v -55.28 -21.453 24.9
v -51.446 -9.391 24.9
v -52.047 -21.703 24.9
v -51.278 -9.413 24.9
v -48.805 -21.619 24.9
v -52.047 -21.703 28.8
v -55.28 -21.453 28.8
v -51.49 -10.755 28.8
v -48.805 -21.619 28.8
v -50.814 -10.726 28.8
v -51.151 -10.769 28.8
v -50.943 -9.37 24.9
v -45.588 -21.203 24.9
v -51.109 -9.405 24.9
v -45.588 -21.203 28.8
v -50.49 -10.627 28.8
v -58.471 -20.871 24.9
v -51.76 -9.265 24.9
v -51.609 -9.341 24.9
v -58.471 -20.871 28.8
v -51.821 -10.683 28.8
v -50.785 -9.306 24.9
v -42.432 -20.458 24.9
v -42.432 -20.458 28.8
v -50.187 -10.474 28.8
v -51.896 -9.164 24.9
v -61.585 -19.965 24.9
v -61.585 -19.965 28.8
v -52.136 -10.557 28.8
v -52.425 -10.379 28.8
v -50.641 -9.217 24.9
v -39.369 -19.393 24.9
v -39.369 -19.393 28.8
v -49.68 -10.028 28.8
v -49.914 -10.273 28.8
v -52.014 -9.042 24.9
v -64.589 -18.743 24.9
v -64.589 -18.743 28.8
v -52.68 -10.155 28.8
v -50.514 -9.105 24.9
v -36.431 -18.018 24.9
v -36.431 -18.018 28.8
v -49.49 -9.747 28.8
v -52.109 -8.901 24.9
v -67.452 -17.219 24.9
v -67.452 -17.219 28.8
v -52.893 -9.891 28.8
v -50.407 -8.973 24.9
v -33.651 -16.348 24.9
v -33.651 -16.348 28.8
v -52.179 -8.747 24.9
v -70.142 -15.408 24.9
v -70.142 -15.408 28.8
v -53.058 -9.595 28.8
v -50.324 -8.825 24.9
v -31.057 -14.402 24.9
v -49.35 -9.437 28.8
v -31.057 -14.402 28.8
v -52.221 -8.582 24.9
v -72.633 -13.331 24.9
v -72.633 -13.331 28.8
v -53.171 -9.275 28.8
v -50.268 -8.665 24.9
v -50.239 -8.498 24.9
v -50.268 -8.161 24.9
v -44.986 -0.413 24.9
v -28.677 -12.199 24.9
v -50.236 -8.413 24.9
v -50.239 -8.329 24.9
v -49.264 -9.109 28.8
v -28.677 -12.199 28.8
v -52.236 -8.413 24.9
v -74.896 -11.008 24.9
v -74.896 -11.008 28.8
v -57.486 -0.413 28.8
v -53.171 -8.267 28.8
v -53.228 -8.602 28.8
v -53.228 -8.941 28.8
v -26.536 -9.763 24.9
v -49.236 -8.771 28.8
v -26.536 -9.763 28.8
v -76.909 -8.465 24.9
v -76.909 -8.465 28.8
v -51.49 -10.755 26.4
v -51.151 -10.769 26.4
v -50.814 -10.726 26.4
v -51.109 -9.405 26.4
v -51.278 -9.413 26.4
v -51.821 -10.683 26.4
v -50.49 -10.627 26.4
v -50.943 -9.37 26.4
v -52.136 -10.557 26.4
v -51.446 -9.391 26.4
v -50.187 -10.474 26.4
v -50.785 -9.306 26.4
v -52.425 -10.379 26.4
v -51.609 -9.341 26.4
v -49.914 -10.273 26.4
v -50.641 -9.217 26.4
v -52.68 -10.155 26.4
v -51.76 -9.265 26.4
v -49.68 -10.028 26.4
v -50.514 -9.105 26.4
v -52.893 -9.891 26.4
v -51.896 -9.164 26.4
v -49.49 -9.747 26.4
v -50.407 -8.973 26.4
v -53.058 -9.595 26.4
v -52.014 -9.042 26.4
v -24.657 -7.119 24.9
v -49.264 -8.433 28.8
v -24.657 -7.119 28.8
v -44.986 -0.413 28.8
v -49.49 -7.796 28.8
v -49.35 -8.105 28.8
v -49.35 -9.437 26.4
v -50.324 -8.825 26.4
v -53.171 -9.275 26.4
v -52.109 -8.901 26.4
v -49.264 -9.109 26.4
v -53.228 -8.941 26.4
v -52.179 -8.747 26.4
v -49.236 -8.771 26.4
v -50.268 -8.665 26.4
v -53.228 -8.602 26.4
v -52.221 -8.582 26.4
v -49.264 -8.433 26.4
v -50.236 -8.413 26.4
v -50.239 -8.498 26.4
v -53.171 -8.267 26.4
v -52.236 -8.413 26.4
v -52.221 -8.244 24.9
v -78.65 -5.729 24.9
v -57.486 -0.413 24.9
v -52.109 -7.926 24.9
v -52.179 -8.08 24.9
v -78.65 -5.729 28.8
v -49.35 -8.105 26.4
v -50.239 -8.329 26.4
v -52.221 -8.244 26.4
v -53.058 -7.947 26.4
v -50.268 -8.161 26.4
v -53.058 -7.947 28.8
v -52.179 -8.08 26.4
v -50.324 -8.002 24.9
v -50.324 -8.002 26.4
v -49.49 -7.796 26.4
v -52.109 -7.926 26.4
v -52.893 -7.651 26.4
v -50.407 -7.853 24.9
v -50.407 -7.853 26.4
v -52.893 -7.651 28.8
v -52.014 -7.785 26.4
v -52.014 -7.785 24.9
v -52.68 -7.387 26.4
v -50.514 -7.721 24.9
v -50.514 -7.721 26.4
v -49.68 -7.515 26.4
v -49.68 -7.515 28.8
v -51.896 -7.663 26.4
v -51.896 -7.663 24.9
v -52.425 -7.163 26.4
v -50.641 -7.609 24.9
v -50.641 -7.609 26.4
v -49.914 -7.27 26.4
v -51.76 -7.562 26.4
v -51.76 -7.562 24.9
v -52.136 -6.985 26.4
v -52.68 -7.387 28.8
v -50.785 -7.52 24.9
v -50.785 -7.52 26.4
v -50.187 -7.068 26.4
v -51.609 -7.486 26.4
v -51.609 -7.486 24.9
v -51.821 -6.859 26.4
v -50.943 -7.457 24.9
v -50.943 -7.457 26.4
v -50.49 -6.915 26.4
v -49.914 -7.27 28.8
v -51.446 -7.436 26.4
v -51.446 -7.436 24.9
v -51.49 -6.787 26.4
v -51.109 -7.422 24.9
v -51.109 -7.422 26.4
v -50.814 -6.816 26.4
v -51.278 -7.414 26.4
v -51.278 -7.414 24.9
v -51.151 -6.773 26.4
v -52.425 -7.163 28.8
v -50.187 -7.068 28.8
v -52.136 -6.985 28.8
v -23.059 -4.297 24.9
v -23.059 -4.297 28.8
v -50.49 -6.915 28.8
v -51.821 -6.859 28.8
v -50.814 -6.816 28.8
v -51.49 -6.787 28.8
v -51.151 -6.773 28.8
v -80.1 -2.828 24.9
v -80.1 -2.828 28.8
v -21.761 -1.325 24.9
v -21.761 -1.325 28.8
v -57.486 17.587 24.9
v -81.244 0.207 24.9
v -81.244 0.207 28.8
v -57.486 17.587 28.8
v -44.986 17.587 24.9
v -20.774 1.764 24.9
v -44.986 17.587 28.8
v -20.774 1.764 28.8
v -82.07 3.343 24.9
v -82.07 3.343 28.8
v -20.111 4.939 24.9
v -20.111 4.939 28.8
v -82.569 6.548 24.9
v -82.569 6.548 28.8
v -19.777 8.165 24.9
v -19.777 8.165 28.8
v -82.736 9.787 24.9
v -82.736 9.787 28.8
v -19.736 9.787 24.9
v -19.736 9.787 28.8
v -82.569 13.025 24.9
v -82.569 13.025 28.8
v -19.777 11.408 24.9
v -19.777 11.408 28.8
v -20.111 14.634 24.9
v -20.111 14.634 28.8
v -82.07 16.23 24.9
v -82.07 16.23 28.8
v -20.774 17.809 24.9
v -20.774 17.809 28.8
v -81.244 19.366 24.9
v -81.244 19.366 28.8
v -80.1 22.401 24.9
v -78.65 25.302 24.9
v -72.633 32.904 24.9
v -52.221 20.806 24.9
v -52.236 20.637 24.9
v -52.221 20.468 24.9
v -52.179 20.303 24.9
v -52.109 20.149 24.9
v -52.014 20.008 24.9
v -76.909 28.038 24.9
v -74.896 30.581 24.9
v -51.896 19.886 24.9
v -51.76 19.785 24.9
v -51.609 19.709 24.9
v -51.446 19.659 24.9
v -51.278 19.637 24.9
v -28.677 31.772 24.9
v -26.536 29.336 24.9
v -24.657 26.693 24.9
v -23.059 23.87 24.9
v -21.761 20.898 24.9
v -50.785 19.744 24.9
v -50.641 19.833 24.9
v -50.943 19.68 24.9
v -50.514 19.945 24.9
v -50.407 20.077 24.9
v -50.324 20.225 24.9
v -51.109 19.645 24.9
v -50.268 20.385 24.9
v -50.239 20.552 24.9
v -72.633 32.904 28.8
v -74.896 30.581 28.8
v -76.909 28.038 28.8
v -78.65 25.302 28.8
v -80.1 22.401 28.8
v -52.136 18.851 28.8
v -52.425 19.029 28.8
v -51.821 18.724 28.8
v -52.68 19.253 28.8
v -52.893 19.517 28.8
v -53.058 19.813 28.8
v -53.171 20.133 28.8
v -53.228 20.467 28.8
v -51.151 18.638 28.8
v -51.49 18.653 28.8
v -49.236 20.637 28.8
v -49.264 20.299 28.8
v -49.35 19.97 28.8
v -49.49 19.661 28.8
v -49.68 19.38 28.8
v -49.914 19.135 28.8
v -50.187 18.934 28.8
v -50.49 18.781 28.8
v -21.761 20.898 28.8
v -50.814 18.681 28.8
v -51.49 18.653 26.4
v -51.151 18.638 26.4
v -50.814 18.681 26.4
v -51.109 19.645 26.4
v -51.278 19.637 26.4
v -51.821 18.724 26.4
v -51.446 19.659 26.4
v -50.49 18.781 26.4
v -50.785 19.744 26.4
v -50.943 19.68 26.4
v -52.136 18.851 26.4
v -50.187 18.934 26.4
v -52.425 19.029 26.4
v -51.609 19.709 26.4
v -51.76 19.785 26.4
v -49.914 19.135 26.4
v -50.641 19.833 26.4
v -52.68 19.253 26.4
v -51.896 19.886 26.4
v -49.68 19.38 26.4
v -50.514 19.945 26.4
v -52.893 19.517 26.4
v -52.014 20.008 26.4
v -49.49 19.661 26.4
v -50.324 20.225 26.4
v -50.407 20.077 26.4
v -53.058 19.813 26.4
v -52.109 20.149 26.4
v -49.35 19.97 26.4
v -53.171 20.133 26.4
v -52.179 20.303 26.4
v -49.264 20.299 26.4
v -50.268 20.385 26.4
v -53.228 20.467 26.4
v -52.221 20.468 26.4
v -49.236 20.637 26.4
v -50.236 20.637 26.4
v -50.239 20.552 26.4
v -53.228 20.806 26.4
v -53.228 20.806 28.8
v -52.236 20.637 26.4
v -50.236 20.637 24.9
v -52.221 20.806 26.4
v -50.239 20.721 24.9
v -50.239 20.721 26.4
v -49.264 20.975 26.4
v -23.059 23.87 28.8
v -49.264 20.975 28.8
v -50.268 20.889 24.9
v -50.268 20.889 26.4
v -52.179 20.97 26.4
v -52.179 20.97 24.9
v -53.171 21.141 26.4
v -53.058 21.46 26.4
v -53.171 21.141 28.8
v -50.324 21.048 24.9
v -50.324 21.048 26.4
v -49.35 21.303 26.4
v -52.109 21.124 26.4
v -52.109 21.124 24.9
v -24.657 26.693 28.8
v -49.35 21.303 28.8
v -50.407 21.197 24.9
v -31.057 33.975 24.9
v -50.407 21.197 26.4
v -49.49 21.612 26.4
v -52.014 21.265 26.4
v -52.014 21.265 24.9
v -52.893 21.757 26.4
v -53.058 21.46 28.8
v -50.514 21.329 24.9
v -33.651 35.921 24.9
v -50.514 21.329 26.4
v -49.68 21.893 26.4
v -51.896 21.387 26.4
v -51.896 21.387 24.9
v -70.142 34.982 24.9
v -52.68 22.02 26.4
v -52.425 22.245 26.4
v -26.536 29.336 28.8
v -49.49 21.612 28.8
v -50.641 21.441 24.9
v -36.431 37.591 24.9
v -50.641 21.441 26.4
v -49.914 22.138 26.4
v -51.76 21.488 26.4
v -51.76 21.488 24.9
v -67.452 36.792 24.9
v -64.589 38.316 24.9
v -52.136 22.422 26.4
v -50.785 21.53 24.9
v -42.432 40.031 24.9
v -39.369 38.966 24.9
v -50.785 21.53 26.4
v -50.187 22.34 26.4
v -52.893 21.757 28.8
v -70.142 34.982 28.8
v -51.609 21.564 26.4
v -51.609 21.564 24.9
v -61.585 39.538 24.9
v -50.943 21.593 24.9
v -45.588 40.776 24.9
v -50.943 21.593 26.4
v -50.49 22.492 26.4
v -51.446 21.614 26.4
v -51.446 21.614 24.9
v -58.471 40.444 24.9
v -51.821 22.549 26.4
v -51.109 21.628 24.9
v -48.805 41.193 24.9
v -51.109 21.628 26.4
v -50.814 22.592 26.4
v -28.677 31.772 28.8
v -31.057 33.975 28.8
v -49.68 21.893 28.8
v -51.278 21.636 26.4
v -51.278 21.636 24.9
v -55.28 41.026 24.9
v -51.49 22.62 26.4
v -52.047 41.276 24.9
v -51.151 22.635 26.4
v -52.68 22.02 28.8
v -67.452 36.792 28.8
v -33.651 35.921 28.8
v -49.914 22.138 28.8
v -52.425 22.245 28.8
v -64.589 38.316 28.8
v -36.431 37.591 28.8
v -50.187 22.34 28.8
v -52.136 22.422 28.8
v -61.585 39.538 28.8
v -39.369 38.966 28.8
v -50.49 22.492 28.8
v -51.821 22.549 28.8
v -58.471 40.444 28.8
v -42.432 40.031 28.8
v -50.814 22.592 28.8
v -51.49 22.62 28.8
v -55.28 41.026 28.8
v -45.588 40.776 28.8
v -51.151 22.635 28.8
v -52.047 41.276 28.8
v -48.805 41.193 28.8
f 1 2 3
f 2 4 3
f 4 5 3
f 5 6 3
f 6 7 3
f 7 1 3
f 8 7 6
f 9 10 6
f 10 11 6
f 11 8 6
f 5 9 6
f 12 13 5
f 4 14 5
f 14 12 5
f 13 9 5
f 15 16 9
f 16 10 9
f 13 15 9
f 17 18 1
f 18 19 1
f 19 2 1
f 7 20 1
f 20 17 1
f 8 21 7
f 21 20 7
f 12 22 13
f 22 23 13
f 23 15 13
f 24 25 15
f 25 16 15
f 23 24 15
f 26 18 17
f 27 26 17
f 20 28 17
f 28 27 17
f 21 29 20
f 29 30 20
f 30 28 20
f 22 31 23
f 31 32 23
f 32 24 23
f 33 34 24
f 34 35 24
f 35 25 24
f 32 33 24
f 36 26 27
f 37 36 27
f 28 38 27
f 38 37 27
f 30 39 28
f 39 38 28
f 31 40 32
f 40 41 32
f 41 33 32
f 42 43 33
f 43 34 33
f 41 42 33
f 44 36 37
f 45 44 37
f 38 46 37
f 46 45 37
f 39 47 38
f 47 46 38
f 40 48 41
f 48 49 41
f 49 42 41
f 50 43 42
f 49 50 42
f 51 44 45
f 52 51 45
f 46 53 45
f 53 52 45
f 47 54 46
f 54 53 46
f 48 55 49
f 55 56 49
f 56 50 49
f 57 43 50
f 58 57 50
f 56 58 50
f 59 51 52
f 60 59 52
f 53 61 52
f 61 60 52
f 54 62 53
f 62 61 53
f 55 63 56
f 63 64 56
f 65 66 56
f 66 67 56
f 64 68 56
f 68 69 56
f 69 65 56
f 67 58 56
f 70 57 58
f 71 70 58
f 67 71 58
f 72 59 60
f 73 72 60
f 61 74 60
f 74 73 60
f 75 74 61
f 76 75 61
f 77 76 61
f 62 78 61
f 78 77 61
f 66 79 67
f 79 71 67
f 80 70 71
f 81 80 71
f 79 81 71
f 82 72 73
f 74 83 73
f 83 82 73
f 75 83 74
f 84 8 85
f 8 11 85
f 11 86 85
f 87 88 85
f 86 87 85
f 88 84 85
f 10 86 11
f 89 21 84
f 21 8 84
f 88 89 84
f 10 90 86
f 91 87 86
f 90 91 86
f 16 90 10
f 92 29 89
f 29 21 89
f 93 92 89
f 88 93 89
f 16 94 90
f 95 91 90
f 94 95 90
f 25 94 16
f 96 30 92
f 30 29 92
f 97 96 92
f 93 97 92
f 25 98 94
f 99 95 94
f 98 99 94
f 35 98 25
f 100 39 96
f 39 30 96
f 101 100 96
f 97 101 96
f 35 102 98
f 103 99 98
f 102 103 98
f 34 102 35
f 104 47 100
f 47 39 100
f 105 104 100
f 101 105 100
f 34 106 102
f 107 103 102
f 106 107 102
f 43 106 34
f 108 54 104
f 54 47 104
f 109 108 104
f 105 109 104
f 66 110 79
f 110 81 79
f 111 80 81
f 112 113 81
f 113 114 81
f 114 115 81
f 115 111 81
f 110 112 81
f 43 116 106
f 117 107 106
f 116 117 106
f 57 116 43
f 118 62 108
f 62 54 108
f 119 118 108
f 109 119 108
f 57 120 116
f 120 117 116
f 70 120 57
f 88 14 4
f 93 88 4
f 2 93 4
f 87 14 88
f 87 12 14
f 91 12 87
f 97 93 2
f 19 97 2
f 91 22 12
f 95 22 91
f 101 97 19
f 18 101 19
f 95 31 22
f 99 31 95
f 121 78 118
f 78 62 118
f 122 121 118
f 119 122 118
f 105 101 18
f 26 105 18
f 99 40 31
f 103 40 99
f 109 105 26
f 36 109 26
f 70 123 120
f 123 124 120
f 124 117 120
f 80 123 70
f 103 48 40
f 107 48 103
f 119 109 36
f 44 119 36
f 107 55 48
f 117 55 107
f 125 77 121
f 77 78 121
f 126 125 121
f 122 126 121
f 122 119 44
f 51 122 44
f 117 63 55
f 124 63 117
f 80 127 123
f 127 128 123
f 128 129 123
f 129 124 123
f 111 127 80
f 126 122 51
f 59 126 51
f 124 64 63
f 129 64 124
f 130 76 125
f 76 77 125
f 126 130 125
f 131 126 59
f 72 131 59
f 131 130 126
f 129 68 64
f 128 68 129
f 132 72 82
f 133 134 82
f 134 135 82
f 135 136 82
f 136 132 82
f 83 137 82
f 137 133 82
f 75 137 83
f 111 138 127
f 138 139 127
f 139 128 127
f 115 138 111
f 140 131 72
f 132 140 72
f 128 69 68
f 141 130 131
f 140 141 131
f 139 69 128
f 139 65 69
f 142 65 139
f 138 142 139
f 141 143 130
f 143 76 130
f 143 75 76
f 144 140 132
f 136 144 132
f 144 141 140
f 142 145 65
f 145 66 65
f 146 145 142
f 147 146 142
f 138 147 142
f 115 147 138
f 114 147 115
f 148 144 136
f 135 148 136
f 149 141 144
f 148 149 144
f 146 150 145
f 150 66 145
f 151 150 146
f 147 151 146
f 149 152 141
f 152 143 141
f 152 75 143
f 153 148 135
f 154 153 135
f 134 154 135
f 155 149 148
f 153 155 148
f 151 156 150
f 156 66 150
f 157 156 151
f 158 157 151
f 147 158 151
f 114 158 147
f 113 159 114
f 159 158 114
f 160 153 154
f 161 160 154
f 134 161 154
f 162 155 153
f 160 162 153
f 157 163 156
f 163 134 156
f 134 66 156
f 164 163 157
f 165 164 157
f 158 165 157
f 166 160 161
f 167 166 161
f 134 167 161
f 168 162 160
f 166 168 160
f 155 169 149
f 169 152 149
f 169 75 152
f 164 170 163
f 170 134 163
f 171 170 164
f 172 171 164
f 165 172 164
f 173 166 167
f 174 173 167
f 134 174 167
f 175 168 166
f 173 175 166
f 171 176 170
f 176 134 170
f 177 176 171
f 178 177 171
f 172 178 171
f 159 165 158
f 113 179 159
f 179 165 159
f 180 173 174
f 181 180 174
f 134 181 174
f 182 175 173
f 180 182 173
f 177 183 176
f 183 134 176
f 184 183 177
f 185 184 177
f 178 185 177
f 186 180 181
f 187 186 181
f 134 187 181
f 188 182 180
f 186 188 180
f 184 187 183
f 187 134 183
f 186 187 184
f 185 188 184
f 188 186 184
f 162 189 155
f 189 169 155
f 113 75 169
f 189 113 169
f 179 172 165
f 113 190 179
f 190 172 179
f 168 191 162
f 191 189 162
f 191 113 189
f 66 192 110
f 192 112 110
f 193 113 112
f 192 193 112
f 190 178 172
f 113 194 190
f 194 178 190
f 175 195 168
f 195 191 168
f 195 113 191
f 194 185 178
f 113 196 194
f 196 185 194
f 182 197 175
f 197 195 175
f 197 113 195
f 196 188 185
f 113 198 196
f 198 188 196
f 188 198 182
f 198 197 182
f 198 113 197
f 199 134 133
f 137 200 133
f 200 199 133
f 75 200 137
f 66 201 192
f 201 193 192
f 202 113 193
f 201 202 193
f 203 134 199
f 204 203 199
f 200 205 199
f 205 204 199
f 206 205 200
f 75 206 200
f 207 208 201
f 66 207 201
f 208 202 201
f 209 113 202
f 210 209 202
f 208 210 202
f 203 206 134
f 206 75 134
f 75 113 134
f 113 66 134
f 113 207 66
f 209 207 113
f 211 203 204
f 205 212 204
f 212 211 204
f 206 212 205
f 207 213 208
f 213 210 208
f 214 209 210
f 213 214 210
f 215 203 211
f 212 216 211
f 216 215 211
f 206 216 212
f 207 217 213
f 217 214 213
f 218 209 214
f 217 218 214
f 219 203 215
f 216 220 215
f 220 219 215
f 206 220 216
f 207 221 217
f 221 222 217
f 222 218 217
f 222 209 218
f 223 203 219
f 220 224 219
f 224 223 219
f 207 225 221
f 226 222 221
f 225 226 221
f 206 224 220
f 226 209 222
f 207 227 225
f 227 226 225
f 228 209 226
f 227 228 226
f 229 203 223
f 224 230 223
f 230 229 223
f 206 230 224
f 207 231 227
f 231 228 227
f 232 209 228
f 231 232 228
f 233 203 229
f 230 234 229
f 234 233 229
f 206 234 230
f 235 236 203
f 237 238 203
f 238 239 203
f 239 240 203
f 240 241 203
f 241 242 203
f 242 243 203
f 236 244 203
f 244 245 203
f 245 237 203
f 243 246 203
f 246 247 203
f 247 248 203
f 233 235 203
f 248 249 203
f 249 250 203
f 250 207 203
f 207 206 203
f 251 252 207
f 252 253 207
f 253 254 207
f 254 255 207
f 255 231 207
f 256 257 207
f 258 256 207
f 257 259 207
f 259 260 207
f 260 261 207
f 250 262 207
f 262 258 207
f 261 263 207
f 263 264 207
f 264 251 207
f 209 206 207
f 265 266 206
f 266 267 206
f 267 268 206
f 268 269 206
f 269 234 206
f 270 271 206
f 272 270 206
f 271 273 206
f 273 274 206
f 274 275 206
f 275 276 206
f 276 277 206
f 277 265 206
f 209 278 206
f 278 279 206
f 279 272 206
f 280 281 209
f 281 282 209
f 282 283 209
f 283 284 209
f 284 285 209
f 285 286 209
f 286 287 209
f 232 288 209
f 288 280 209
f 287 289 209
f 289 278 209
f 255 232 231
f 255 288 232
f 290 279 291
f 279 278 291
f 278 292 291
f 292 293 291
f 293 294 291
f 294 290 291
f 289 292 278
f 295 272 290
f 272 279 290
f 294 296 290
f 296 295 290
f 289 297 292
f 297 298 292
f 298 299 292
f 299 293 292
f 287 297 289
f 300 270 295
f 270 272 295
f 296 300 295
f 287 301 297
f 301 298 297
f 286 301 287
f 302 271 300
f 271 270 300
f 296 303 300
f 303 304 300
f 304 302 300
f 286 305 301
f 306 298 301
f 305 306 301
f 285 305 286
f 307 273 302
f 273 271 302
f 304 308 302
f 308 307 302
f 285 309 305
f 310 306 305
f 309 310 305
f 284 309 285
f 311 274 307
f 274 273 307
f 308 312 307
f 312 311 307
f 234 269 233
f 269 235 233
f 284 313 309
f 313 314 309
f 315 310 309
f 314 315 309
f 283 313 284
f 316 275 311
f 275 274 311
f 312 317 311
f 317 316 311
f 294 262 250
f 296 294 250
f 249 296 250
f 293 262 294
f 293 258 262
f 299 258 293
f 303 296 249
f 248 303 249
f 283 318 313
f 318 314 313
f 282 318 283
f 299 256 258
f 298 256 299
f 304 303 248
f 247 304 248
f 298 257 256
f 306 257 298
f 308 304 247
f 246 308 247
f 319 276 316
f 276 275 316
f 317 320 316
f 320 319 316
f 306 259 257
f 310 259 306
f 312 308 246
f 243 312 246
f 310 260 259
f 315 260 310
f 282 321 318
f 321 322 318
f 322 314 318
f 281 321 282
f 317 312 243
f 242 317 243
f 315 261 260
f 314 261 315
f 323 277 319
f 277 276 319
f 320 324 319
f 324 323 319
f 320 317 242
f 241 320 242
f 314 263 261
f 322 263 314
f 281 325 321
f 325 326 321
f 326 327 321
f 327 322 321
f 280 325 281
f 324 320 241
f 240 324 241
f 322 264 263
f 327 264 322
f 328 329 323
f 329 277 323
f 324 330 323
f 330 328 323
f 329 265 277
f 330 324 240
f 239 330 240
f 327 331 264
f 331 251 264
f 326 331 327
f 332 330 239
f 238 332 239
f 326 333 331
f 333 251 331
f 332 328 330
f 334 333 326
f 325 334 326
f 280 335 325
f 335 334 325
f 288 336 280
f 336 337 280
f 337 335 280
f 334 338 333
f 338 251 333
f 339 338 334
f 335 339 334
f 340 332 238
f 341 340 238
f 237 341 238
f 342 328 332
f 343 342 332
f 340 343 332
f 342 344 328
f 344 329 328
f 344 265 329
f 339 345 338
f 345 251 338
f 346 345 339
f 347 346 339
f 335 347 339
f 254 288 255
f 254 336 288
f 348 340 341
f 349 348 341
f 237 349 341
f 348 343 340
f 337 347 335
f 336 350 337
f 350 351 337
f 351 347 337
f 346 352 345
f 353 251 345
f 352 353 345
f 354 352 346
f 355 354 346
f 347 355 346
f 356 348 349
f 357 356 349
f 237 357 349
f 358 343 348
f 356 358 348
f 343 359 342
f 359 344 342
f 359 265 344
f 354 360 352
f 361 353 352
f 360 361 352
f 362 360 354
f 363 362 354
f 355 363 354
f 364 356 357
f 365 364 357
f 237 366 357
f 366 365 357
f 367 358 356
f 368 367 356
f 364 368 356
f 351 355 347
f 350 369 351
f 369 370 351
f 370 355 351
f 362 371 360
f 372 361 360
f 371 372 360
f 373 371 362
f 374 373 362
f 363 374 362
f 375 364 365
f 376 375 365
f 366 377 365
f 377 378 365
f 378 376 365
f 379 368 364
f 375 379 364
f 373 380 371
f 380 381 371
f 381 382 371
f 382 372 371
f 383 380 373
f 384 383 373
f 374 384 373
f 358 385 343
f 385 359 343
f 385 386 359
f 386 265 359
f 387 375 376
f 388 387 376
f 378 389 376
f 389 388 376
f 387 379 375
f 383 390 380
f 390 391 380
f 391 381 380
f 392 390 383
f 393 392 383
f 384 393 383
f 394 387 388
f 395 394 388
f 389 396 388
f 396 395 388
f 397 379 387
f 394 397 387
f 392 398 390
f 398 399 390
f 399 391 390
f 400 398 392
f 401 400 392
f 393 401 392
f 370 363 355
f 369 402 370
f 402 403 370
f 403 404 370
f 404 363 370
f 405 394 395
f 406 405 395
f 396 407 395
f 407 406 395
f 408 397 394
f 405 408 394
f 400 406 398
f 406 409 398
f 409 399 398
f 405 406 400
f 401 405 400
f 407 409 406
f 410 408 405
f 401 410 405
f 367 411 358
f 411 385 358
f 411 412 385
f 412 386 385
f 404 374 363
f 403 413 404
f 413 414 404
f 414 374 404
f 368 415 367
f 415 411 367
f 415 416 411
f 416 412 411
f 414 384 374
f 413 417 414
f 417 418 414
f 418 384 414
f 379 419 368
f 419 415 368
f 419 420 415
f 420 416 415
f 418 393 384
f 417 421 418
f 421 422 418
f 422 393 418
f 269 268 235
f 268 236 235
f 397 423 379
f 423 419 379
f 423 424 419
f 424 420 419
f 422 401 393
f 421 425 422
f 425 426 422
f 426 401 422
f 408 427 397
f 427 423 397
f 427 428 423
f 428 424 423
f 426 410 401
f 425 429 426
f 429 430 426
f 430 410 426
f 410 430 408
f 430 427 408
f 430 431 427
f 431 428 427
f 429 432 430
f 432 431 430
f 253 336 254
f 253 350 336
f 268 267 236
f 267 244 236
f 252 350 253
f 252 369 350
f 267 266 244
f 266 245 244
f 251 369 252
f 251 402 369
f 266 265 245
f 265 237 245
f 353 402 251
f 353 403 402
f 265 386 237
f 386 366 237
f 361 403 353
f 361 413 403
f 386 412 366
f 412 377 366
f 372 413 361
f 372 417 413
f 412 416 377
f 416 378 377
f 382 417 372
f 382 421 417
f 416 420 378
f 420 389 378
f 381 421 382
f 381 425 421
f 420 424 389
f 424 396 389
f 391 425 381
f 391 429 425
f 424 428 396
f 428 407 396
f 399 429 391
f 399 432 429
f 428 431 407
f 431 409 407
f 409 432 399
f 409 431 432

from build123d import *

# Parameters (mm, degrees)
CROQUIS1_R              = 31.5
SALIENTE_EXTRUIR1_DEPTH = 2.4
CROQUIS2_W              = 16.1
CROQUIS2_H              = 36.6
CROQUIS2_W_2            = 12.5
CROQUIS2_H_2            = 33
SALIENTE_EXTRUIR2_DEPTH = 22.5
CROQUIS5_W              = 16.1
CROQUIS5_H              = 36.6
CORTAR_EXTRUIR2_DEPTH   = 9
CROQUIS6_R              = 1.5
CORTAR_EXTRUIR3_DEPTH   = 2.4
CROQUIS7_W              = 12.5
CROQUIS7_H              = 9
SALIENTE_EXTRUIR3_DEPTH = 33
CROQUIS8_R              = 1
CORTAR_EXTRUIR5_DEPTH   = 9
SALIENTE_EXTRUIR4_DEPTH = 12.5
CROQUIS10_W             = 4
CROQUIS10_H             = 2
CORTAR_EXTRUIR6_DEPTH   = 9
CROQUIS11_R             = 31.5
CROQUIS11_W             = 12.5
CROQUIS11_H             = 18
SALIENTE_EXTRUIR5_DEPTH = 3.9
CORTAR_EXTRUIR7_START   = 7
CROQUIS12_R             = 1
CORTAR_EXTRUIR7_DEPTH   = 3.9
CROQUIS13_R             = 2
CORTAR_EXTRUIR8_DEPTH   = 2.4
CROQUIS14_R             = 31.5
CORTAR_EXTRUIR9_DEPTH   = 24.9


with BuildPart() as part:
    # Croquis1 → Saliente-Extruir1 (new body)
    with BuildSketch(Plane.XY):
        with Locations((-51.235671923, 9.786589019)):
            Circle(CROQUIS1_R)
    extrude(amount=SALIENTE_EXTRUIR1_DEPTH)

    # Croquis2 → Saliente-Extruir2 (add)
    with BuildSketch(Plane.XY.offset(2.4)):
        with Locations((-51.235671923, 6.086589019)):
            Rectangle(CROQUIS2_W, CROQUIS2_H)
        with Locations((-51.235671923, 6.086589019)):
            Rectangle(CROQUIS2_W_2, CROQUIS2_H_2, mode=Mode.SUBTRACT)
    extrude(amount=SALIENTE_EXTRUIR2_DEPTH)

    # Croquis5 → Cortar-Extruir2 (cut)
    with BuildSketch(Plane.XY.offset(2.4)):
        with Locations((-51.235671923, 6.086589019)):
            Rectangle(CROQUIS5_W, CROQUIS5_H)
    extrude(amount=-CORTAR_EXTRUIR2_DEPTH, mode=Mode.SUBTRACT)


with BuildPart() as cortar_extruir2_piece_1:
    # of the separate pieces the step leaves, piece 1, a body of its own (cortar_extruir2_pieces)
    add(part.part.solids().sort_by_distance((-19.735671923, 9.786589019, 0))[0])

    # Croquis6 → Cortar-Extruir3 (cut)
    with BuildSketch(Plane(origin=(0, 0, 0), x_dir=(-1, 0, 0), z_dir=(0, 0, -1))):
        with Locations((34.618662565, 26.403598377)):
            Circle(CROQUIS6_R)
        with Locations((67.85268128, 26.403598377)):
            Circle(CROQUIS6_R)
        with Locations((67.85268128, -6.830420339)):
            Circle(CROQUIS6_R)
        with Locations((34.618662565, -6.830420339)):
            Circle(CROQUIS6_R)
        Polygon((51.235671923, 24.386589019), (53.235671923, 24.386589019), (53.235671923, 44.386589019), (49.235671923, 44.386589019), (49.235671923, 24.386589019), align=None)
    extrude(amount=-CORTAR_EXTRUIR3_DEPTH, mode=Mode.SUBTRACT)


with BuildPart() as cortar_extruir2_piece_2:
    # of the separate pieces the step leaves, piece 2, a body of its own (cortar_extruir2_pieces)
    add(part.part.solids().sort_by_distance((-59.285671923, -12.213410981, 24.9))[0])

    # Croquis7 → Saliente-Extruir3 (add)
    with BuildSketch(Plane.XZ.offset(-22.586589019)):
        with Locations((-51.235671923, 13.4)):
            Rectangle(CROQUIS7_W, CROQUIS7_H)
    extrude(amount=SALIENTE_EXTRUIR3_DEPTH)

    # Croquis8 → Cortar-Extruir5 (cut)
    with BuildSketch(Plane.XY.offset(17.9)):
        with Locations((-51.235671923, -8.413410981)):
            Circle(CROQUIS8_R)
        with Locations((-51.235671923, 20.636589019)):
            Circle(CROQUIS8_R)
        Polygon((-44.985671923, -5.413410981), (-57.485671923, -5.413410981), (-57.485671923, 17.586589019), (-53.235671923, 17.586589019), (-53.235671923, 19.586589019), (-49.235671923, 19.586589019), (-49.235671923, 17.586589019), (-44.985671923, 17.586589019), align=None)
    extrude(amount=-CORTAR_EXTRUIR5_DEPTH, mode=Mode.SUBTRACT)

    # Croquis9 → Saliente-Extruir4 (add)
    with BuildSketch(Plane.ZY.offset(44.985671923)):
        Polygon((8.9, -5.413410981), (3.9, -10.413410981), (8.9, -10.413410981), align=None)
        Polygon((8.9, 17.586589019), (3.9, 22.586589019), (8.9, 22.586589019), align=None)
    extrude(amount=SALIENTE_EXTRUIR4_DEPTH)

    # Croquis10 → Cortar-Extruir6 (cut)
    with BuildSketch(Plane.XY.offset(8.9)):
        with Locations((-51.235671923, 18.586589019)):
            Rectangle(CROQUIS10_W, CROQUIS10_H)
    extrude(amount=-CORTAR_EXTRUIR6_DEPTH, mode=Mode.SUBTRACT)

    # Croquis11 → Saliente-Extruir5 (add)
    with BuildSketch(Plane.XY.offset(24.9)):
        with Locations((-51.235671923, 9.786589019)):
            Circle(CROQUIS11_R)
        with Locations((-51.235671923, 8.586589019)):
            Rectangle(CROQUIS11_W, CROQUIS11_H, mode=Mode.SUBTRACT)
    extrude(amount=SALIENTE_EXTRUIR5_DEPTH)

    # Croquis12 → Cortar-Extruir7 (cut)
    with BuildSketch(Plane.XY.offset(17.9).offset(CORTAR_EXTRUIR7_START)):
        with Locations((-51.235671923, 20.636589019)):
            Circle(CROQUIS12_R)
        with Locations((-51.235671923, -8.413410981)):
            Circle(CROQUIS12_R)
    extrude(amount=CORTAR_EXTRUIR7_DEPTH, mode=Mode.SUBTRACT)

    # Croquis13 → Cortar-Extruir8 (cut)
    with BuildSketch(Plane.XY.offset(28.8)):
        with Locations((-51.235671923, 20.636589019)):
            Circle(CROQUIS13_R)
        with Locations((-51.235671923, -8.771160787)):
            Circle(CROQUIS13_R)
    extrude(amount=-CORTAR_EXTRUIR8_DEPTH, mode=Mode.SUBTRACT)


with BuildPart() as cortar_extruir9_tool:
    # Croquis14 → Cortar-Extruir9 (new body)
    with BuildSketch(Plane(origin=(0, 0, 0), x_dir=(-1, 0, 0), z_dir=(0, 0, -1))):
        with Locations(Location((51.235671923, 9.786589019, 0), (0, 0, 180))):
            Circle(CROQUIS14_R)
    extrude(amount=-CORTAR_EXTRUIR9_DEPTH)


with BuildPart() as cortar_extruir2_piece_1_1:
    add(cortar_extruir2_piece_1.part)

    # Cortar-Extruir9: cut by cortar_extruir9_tool
    add(cortar_extruir9_tool.part, mode=Mode.SUBTRACT)


with BuildPart() as cortar_extruir2_piece_2_1:
    add(cortar_extruir2_piece_2.part)

    # Cortar-Extruir9: cut by cortar_extruir9_tool
    add(cortar_extruir9_tool.part, mode=Mode.SUBTRACT)


solid = cortar_extruir2_piece_2_1.part
